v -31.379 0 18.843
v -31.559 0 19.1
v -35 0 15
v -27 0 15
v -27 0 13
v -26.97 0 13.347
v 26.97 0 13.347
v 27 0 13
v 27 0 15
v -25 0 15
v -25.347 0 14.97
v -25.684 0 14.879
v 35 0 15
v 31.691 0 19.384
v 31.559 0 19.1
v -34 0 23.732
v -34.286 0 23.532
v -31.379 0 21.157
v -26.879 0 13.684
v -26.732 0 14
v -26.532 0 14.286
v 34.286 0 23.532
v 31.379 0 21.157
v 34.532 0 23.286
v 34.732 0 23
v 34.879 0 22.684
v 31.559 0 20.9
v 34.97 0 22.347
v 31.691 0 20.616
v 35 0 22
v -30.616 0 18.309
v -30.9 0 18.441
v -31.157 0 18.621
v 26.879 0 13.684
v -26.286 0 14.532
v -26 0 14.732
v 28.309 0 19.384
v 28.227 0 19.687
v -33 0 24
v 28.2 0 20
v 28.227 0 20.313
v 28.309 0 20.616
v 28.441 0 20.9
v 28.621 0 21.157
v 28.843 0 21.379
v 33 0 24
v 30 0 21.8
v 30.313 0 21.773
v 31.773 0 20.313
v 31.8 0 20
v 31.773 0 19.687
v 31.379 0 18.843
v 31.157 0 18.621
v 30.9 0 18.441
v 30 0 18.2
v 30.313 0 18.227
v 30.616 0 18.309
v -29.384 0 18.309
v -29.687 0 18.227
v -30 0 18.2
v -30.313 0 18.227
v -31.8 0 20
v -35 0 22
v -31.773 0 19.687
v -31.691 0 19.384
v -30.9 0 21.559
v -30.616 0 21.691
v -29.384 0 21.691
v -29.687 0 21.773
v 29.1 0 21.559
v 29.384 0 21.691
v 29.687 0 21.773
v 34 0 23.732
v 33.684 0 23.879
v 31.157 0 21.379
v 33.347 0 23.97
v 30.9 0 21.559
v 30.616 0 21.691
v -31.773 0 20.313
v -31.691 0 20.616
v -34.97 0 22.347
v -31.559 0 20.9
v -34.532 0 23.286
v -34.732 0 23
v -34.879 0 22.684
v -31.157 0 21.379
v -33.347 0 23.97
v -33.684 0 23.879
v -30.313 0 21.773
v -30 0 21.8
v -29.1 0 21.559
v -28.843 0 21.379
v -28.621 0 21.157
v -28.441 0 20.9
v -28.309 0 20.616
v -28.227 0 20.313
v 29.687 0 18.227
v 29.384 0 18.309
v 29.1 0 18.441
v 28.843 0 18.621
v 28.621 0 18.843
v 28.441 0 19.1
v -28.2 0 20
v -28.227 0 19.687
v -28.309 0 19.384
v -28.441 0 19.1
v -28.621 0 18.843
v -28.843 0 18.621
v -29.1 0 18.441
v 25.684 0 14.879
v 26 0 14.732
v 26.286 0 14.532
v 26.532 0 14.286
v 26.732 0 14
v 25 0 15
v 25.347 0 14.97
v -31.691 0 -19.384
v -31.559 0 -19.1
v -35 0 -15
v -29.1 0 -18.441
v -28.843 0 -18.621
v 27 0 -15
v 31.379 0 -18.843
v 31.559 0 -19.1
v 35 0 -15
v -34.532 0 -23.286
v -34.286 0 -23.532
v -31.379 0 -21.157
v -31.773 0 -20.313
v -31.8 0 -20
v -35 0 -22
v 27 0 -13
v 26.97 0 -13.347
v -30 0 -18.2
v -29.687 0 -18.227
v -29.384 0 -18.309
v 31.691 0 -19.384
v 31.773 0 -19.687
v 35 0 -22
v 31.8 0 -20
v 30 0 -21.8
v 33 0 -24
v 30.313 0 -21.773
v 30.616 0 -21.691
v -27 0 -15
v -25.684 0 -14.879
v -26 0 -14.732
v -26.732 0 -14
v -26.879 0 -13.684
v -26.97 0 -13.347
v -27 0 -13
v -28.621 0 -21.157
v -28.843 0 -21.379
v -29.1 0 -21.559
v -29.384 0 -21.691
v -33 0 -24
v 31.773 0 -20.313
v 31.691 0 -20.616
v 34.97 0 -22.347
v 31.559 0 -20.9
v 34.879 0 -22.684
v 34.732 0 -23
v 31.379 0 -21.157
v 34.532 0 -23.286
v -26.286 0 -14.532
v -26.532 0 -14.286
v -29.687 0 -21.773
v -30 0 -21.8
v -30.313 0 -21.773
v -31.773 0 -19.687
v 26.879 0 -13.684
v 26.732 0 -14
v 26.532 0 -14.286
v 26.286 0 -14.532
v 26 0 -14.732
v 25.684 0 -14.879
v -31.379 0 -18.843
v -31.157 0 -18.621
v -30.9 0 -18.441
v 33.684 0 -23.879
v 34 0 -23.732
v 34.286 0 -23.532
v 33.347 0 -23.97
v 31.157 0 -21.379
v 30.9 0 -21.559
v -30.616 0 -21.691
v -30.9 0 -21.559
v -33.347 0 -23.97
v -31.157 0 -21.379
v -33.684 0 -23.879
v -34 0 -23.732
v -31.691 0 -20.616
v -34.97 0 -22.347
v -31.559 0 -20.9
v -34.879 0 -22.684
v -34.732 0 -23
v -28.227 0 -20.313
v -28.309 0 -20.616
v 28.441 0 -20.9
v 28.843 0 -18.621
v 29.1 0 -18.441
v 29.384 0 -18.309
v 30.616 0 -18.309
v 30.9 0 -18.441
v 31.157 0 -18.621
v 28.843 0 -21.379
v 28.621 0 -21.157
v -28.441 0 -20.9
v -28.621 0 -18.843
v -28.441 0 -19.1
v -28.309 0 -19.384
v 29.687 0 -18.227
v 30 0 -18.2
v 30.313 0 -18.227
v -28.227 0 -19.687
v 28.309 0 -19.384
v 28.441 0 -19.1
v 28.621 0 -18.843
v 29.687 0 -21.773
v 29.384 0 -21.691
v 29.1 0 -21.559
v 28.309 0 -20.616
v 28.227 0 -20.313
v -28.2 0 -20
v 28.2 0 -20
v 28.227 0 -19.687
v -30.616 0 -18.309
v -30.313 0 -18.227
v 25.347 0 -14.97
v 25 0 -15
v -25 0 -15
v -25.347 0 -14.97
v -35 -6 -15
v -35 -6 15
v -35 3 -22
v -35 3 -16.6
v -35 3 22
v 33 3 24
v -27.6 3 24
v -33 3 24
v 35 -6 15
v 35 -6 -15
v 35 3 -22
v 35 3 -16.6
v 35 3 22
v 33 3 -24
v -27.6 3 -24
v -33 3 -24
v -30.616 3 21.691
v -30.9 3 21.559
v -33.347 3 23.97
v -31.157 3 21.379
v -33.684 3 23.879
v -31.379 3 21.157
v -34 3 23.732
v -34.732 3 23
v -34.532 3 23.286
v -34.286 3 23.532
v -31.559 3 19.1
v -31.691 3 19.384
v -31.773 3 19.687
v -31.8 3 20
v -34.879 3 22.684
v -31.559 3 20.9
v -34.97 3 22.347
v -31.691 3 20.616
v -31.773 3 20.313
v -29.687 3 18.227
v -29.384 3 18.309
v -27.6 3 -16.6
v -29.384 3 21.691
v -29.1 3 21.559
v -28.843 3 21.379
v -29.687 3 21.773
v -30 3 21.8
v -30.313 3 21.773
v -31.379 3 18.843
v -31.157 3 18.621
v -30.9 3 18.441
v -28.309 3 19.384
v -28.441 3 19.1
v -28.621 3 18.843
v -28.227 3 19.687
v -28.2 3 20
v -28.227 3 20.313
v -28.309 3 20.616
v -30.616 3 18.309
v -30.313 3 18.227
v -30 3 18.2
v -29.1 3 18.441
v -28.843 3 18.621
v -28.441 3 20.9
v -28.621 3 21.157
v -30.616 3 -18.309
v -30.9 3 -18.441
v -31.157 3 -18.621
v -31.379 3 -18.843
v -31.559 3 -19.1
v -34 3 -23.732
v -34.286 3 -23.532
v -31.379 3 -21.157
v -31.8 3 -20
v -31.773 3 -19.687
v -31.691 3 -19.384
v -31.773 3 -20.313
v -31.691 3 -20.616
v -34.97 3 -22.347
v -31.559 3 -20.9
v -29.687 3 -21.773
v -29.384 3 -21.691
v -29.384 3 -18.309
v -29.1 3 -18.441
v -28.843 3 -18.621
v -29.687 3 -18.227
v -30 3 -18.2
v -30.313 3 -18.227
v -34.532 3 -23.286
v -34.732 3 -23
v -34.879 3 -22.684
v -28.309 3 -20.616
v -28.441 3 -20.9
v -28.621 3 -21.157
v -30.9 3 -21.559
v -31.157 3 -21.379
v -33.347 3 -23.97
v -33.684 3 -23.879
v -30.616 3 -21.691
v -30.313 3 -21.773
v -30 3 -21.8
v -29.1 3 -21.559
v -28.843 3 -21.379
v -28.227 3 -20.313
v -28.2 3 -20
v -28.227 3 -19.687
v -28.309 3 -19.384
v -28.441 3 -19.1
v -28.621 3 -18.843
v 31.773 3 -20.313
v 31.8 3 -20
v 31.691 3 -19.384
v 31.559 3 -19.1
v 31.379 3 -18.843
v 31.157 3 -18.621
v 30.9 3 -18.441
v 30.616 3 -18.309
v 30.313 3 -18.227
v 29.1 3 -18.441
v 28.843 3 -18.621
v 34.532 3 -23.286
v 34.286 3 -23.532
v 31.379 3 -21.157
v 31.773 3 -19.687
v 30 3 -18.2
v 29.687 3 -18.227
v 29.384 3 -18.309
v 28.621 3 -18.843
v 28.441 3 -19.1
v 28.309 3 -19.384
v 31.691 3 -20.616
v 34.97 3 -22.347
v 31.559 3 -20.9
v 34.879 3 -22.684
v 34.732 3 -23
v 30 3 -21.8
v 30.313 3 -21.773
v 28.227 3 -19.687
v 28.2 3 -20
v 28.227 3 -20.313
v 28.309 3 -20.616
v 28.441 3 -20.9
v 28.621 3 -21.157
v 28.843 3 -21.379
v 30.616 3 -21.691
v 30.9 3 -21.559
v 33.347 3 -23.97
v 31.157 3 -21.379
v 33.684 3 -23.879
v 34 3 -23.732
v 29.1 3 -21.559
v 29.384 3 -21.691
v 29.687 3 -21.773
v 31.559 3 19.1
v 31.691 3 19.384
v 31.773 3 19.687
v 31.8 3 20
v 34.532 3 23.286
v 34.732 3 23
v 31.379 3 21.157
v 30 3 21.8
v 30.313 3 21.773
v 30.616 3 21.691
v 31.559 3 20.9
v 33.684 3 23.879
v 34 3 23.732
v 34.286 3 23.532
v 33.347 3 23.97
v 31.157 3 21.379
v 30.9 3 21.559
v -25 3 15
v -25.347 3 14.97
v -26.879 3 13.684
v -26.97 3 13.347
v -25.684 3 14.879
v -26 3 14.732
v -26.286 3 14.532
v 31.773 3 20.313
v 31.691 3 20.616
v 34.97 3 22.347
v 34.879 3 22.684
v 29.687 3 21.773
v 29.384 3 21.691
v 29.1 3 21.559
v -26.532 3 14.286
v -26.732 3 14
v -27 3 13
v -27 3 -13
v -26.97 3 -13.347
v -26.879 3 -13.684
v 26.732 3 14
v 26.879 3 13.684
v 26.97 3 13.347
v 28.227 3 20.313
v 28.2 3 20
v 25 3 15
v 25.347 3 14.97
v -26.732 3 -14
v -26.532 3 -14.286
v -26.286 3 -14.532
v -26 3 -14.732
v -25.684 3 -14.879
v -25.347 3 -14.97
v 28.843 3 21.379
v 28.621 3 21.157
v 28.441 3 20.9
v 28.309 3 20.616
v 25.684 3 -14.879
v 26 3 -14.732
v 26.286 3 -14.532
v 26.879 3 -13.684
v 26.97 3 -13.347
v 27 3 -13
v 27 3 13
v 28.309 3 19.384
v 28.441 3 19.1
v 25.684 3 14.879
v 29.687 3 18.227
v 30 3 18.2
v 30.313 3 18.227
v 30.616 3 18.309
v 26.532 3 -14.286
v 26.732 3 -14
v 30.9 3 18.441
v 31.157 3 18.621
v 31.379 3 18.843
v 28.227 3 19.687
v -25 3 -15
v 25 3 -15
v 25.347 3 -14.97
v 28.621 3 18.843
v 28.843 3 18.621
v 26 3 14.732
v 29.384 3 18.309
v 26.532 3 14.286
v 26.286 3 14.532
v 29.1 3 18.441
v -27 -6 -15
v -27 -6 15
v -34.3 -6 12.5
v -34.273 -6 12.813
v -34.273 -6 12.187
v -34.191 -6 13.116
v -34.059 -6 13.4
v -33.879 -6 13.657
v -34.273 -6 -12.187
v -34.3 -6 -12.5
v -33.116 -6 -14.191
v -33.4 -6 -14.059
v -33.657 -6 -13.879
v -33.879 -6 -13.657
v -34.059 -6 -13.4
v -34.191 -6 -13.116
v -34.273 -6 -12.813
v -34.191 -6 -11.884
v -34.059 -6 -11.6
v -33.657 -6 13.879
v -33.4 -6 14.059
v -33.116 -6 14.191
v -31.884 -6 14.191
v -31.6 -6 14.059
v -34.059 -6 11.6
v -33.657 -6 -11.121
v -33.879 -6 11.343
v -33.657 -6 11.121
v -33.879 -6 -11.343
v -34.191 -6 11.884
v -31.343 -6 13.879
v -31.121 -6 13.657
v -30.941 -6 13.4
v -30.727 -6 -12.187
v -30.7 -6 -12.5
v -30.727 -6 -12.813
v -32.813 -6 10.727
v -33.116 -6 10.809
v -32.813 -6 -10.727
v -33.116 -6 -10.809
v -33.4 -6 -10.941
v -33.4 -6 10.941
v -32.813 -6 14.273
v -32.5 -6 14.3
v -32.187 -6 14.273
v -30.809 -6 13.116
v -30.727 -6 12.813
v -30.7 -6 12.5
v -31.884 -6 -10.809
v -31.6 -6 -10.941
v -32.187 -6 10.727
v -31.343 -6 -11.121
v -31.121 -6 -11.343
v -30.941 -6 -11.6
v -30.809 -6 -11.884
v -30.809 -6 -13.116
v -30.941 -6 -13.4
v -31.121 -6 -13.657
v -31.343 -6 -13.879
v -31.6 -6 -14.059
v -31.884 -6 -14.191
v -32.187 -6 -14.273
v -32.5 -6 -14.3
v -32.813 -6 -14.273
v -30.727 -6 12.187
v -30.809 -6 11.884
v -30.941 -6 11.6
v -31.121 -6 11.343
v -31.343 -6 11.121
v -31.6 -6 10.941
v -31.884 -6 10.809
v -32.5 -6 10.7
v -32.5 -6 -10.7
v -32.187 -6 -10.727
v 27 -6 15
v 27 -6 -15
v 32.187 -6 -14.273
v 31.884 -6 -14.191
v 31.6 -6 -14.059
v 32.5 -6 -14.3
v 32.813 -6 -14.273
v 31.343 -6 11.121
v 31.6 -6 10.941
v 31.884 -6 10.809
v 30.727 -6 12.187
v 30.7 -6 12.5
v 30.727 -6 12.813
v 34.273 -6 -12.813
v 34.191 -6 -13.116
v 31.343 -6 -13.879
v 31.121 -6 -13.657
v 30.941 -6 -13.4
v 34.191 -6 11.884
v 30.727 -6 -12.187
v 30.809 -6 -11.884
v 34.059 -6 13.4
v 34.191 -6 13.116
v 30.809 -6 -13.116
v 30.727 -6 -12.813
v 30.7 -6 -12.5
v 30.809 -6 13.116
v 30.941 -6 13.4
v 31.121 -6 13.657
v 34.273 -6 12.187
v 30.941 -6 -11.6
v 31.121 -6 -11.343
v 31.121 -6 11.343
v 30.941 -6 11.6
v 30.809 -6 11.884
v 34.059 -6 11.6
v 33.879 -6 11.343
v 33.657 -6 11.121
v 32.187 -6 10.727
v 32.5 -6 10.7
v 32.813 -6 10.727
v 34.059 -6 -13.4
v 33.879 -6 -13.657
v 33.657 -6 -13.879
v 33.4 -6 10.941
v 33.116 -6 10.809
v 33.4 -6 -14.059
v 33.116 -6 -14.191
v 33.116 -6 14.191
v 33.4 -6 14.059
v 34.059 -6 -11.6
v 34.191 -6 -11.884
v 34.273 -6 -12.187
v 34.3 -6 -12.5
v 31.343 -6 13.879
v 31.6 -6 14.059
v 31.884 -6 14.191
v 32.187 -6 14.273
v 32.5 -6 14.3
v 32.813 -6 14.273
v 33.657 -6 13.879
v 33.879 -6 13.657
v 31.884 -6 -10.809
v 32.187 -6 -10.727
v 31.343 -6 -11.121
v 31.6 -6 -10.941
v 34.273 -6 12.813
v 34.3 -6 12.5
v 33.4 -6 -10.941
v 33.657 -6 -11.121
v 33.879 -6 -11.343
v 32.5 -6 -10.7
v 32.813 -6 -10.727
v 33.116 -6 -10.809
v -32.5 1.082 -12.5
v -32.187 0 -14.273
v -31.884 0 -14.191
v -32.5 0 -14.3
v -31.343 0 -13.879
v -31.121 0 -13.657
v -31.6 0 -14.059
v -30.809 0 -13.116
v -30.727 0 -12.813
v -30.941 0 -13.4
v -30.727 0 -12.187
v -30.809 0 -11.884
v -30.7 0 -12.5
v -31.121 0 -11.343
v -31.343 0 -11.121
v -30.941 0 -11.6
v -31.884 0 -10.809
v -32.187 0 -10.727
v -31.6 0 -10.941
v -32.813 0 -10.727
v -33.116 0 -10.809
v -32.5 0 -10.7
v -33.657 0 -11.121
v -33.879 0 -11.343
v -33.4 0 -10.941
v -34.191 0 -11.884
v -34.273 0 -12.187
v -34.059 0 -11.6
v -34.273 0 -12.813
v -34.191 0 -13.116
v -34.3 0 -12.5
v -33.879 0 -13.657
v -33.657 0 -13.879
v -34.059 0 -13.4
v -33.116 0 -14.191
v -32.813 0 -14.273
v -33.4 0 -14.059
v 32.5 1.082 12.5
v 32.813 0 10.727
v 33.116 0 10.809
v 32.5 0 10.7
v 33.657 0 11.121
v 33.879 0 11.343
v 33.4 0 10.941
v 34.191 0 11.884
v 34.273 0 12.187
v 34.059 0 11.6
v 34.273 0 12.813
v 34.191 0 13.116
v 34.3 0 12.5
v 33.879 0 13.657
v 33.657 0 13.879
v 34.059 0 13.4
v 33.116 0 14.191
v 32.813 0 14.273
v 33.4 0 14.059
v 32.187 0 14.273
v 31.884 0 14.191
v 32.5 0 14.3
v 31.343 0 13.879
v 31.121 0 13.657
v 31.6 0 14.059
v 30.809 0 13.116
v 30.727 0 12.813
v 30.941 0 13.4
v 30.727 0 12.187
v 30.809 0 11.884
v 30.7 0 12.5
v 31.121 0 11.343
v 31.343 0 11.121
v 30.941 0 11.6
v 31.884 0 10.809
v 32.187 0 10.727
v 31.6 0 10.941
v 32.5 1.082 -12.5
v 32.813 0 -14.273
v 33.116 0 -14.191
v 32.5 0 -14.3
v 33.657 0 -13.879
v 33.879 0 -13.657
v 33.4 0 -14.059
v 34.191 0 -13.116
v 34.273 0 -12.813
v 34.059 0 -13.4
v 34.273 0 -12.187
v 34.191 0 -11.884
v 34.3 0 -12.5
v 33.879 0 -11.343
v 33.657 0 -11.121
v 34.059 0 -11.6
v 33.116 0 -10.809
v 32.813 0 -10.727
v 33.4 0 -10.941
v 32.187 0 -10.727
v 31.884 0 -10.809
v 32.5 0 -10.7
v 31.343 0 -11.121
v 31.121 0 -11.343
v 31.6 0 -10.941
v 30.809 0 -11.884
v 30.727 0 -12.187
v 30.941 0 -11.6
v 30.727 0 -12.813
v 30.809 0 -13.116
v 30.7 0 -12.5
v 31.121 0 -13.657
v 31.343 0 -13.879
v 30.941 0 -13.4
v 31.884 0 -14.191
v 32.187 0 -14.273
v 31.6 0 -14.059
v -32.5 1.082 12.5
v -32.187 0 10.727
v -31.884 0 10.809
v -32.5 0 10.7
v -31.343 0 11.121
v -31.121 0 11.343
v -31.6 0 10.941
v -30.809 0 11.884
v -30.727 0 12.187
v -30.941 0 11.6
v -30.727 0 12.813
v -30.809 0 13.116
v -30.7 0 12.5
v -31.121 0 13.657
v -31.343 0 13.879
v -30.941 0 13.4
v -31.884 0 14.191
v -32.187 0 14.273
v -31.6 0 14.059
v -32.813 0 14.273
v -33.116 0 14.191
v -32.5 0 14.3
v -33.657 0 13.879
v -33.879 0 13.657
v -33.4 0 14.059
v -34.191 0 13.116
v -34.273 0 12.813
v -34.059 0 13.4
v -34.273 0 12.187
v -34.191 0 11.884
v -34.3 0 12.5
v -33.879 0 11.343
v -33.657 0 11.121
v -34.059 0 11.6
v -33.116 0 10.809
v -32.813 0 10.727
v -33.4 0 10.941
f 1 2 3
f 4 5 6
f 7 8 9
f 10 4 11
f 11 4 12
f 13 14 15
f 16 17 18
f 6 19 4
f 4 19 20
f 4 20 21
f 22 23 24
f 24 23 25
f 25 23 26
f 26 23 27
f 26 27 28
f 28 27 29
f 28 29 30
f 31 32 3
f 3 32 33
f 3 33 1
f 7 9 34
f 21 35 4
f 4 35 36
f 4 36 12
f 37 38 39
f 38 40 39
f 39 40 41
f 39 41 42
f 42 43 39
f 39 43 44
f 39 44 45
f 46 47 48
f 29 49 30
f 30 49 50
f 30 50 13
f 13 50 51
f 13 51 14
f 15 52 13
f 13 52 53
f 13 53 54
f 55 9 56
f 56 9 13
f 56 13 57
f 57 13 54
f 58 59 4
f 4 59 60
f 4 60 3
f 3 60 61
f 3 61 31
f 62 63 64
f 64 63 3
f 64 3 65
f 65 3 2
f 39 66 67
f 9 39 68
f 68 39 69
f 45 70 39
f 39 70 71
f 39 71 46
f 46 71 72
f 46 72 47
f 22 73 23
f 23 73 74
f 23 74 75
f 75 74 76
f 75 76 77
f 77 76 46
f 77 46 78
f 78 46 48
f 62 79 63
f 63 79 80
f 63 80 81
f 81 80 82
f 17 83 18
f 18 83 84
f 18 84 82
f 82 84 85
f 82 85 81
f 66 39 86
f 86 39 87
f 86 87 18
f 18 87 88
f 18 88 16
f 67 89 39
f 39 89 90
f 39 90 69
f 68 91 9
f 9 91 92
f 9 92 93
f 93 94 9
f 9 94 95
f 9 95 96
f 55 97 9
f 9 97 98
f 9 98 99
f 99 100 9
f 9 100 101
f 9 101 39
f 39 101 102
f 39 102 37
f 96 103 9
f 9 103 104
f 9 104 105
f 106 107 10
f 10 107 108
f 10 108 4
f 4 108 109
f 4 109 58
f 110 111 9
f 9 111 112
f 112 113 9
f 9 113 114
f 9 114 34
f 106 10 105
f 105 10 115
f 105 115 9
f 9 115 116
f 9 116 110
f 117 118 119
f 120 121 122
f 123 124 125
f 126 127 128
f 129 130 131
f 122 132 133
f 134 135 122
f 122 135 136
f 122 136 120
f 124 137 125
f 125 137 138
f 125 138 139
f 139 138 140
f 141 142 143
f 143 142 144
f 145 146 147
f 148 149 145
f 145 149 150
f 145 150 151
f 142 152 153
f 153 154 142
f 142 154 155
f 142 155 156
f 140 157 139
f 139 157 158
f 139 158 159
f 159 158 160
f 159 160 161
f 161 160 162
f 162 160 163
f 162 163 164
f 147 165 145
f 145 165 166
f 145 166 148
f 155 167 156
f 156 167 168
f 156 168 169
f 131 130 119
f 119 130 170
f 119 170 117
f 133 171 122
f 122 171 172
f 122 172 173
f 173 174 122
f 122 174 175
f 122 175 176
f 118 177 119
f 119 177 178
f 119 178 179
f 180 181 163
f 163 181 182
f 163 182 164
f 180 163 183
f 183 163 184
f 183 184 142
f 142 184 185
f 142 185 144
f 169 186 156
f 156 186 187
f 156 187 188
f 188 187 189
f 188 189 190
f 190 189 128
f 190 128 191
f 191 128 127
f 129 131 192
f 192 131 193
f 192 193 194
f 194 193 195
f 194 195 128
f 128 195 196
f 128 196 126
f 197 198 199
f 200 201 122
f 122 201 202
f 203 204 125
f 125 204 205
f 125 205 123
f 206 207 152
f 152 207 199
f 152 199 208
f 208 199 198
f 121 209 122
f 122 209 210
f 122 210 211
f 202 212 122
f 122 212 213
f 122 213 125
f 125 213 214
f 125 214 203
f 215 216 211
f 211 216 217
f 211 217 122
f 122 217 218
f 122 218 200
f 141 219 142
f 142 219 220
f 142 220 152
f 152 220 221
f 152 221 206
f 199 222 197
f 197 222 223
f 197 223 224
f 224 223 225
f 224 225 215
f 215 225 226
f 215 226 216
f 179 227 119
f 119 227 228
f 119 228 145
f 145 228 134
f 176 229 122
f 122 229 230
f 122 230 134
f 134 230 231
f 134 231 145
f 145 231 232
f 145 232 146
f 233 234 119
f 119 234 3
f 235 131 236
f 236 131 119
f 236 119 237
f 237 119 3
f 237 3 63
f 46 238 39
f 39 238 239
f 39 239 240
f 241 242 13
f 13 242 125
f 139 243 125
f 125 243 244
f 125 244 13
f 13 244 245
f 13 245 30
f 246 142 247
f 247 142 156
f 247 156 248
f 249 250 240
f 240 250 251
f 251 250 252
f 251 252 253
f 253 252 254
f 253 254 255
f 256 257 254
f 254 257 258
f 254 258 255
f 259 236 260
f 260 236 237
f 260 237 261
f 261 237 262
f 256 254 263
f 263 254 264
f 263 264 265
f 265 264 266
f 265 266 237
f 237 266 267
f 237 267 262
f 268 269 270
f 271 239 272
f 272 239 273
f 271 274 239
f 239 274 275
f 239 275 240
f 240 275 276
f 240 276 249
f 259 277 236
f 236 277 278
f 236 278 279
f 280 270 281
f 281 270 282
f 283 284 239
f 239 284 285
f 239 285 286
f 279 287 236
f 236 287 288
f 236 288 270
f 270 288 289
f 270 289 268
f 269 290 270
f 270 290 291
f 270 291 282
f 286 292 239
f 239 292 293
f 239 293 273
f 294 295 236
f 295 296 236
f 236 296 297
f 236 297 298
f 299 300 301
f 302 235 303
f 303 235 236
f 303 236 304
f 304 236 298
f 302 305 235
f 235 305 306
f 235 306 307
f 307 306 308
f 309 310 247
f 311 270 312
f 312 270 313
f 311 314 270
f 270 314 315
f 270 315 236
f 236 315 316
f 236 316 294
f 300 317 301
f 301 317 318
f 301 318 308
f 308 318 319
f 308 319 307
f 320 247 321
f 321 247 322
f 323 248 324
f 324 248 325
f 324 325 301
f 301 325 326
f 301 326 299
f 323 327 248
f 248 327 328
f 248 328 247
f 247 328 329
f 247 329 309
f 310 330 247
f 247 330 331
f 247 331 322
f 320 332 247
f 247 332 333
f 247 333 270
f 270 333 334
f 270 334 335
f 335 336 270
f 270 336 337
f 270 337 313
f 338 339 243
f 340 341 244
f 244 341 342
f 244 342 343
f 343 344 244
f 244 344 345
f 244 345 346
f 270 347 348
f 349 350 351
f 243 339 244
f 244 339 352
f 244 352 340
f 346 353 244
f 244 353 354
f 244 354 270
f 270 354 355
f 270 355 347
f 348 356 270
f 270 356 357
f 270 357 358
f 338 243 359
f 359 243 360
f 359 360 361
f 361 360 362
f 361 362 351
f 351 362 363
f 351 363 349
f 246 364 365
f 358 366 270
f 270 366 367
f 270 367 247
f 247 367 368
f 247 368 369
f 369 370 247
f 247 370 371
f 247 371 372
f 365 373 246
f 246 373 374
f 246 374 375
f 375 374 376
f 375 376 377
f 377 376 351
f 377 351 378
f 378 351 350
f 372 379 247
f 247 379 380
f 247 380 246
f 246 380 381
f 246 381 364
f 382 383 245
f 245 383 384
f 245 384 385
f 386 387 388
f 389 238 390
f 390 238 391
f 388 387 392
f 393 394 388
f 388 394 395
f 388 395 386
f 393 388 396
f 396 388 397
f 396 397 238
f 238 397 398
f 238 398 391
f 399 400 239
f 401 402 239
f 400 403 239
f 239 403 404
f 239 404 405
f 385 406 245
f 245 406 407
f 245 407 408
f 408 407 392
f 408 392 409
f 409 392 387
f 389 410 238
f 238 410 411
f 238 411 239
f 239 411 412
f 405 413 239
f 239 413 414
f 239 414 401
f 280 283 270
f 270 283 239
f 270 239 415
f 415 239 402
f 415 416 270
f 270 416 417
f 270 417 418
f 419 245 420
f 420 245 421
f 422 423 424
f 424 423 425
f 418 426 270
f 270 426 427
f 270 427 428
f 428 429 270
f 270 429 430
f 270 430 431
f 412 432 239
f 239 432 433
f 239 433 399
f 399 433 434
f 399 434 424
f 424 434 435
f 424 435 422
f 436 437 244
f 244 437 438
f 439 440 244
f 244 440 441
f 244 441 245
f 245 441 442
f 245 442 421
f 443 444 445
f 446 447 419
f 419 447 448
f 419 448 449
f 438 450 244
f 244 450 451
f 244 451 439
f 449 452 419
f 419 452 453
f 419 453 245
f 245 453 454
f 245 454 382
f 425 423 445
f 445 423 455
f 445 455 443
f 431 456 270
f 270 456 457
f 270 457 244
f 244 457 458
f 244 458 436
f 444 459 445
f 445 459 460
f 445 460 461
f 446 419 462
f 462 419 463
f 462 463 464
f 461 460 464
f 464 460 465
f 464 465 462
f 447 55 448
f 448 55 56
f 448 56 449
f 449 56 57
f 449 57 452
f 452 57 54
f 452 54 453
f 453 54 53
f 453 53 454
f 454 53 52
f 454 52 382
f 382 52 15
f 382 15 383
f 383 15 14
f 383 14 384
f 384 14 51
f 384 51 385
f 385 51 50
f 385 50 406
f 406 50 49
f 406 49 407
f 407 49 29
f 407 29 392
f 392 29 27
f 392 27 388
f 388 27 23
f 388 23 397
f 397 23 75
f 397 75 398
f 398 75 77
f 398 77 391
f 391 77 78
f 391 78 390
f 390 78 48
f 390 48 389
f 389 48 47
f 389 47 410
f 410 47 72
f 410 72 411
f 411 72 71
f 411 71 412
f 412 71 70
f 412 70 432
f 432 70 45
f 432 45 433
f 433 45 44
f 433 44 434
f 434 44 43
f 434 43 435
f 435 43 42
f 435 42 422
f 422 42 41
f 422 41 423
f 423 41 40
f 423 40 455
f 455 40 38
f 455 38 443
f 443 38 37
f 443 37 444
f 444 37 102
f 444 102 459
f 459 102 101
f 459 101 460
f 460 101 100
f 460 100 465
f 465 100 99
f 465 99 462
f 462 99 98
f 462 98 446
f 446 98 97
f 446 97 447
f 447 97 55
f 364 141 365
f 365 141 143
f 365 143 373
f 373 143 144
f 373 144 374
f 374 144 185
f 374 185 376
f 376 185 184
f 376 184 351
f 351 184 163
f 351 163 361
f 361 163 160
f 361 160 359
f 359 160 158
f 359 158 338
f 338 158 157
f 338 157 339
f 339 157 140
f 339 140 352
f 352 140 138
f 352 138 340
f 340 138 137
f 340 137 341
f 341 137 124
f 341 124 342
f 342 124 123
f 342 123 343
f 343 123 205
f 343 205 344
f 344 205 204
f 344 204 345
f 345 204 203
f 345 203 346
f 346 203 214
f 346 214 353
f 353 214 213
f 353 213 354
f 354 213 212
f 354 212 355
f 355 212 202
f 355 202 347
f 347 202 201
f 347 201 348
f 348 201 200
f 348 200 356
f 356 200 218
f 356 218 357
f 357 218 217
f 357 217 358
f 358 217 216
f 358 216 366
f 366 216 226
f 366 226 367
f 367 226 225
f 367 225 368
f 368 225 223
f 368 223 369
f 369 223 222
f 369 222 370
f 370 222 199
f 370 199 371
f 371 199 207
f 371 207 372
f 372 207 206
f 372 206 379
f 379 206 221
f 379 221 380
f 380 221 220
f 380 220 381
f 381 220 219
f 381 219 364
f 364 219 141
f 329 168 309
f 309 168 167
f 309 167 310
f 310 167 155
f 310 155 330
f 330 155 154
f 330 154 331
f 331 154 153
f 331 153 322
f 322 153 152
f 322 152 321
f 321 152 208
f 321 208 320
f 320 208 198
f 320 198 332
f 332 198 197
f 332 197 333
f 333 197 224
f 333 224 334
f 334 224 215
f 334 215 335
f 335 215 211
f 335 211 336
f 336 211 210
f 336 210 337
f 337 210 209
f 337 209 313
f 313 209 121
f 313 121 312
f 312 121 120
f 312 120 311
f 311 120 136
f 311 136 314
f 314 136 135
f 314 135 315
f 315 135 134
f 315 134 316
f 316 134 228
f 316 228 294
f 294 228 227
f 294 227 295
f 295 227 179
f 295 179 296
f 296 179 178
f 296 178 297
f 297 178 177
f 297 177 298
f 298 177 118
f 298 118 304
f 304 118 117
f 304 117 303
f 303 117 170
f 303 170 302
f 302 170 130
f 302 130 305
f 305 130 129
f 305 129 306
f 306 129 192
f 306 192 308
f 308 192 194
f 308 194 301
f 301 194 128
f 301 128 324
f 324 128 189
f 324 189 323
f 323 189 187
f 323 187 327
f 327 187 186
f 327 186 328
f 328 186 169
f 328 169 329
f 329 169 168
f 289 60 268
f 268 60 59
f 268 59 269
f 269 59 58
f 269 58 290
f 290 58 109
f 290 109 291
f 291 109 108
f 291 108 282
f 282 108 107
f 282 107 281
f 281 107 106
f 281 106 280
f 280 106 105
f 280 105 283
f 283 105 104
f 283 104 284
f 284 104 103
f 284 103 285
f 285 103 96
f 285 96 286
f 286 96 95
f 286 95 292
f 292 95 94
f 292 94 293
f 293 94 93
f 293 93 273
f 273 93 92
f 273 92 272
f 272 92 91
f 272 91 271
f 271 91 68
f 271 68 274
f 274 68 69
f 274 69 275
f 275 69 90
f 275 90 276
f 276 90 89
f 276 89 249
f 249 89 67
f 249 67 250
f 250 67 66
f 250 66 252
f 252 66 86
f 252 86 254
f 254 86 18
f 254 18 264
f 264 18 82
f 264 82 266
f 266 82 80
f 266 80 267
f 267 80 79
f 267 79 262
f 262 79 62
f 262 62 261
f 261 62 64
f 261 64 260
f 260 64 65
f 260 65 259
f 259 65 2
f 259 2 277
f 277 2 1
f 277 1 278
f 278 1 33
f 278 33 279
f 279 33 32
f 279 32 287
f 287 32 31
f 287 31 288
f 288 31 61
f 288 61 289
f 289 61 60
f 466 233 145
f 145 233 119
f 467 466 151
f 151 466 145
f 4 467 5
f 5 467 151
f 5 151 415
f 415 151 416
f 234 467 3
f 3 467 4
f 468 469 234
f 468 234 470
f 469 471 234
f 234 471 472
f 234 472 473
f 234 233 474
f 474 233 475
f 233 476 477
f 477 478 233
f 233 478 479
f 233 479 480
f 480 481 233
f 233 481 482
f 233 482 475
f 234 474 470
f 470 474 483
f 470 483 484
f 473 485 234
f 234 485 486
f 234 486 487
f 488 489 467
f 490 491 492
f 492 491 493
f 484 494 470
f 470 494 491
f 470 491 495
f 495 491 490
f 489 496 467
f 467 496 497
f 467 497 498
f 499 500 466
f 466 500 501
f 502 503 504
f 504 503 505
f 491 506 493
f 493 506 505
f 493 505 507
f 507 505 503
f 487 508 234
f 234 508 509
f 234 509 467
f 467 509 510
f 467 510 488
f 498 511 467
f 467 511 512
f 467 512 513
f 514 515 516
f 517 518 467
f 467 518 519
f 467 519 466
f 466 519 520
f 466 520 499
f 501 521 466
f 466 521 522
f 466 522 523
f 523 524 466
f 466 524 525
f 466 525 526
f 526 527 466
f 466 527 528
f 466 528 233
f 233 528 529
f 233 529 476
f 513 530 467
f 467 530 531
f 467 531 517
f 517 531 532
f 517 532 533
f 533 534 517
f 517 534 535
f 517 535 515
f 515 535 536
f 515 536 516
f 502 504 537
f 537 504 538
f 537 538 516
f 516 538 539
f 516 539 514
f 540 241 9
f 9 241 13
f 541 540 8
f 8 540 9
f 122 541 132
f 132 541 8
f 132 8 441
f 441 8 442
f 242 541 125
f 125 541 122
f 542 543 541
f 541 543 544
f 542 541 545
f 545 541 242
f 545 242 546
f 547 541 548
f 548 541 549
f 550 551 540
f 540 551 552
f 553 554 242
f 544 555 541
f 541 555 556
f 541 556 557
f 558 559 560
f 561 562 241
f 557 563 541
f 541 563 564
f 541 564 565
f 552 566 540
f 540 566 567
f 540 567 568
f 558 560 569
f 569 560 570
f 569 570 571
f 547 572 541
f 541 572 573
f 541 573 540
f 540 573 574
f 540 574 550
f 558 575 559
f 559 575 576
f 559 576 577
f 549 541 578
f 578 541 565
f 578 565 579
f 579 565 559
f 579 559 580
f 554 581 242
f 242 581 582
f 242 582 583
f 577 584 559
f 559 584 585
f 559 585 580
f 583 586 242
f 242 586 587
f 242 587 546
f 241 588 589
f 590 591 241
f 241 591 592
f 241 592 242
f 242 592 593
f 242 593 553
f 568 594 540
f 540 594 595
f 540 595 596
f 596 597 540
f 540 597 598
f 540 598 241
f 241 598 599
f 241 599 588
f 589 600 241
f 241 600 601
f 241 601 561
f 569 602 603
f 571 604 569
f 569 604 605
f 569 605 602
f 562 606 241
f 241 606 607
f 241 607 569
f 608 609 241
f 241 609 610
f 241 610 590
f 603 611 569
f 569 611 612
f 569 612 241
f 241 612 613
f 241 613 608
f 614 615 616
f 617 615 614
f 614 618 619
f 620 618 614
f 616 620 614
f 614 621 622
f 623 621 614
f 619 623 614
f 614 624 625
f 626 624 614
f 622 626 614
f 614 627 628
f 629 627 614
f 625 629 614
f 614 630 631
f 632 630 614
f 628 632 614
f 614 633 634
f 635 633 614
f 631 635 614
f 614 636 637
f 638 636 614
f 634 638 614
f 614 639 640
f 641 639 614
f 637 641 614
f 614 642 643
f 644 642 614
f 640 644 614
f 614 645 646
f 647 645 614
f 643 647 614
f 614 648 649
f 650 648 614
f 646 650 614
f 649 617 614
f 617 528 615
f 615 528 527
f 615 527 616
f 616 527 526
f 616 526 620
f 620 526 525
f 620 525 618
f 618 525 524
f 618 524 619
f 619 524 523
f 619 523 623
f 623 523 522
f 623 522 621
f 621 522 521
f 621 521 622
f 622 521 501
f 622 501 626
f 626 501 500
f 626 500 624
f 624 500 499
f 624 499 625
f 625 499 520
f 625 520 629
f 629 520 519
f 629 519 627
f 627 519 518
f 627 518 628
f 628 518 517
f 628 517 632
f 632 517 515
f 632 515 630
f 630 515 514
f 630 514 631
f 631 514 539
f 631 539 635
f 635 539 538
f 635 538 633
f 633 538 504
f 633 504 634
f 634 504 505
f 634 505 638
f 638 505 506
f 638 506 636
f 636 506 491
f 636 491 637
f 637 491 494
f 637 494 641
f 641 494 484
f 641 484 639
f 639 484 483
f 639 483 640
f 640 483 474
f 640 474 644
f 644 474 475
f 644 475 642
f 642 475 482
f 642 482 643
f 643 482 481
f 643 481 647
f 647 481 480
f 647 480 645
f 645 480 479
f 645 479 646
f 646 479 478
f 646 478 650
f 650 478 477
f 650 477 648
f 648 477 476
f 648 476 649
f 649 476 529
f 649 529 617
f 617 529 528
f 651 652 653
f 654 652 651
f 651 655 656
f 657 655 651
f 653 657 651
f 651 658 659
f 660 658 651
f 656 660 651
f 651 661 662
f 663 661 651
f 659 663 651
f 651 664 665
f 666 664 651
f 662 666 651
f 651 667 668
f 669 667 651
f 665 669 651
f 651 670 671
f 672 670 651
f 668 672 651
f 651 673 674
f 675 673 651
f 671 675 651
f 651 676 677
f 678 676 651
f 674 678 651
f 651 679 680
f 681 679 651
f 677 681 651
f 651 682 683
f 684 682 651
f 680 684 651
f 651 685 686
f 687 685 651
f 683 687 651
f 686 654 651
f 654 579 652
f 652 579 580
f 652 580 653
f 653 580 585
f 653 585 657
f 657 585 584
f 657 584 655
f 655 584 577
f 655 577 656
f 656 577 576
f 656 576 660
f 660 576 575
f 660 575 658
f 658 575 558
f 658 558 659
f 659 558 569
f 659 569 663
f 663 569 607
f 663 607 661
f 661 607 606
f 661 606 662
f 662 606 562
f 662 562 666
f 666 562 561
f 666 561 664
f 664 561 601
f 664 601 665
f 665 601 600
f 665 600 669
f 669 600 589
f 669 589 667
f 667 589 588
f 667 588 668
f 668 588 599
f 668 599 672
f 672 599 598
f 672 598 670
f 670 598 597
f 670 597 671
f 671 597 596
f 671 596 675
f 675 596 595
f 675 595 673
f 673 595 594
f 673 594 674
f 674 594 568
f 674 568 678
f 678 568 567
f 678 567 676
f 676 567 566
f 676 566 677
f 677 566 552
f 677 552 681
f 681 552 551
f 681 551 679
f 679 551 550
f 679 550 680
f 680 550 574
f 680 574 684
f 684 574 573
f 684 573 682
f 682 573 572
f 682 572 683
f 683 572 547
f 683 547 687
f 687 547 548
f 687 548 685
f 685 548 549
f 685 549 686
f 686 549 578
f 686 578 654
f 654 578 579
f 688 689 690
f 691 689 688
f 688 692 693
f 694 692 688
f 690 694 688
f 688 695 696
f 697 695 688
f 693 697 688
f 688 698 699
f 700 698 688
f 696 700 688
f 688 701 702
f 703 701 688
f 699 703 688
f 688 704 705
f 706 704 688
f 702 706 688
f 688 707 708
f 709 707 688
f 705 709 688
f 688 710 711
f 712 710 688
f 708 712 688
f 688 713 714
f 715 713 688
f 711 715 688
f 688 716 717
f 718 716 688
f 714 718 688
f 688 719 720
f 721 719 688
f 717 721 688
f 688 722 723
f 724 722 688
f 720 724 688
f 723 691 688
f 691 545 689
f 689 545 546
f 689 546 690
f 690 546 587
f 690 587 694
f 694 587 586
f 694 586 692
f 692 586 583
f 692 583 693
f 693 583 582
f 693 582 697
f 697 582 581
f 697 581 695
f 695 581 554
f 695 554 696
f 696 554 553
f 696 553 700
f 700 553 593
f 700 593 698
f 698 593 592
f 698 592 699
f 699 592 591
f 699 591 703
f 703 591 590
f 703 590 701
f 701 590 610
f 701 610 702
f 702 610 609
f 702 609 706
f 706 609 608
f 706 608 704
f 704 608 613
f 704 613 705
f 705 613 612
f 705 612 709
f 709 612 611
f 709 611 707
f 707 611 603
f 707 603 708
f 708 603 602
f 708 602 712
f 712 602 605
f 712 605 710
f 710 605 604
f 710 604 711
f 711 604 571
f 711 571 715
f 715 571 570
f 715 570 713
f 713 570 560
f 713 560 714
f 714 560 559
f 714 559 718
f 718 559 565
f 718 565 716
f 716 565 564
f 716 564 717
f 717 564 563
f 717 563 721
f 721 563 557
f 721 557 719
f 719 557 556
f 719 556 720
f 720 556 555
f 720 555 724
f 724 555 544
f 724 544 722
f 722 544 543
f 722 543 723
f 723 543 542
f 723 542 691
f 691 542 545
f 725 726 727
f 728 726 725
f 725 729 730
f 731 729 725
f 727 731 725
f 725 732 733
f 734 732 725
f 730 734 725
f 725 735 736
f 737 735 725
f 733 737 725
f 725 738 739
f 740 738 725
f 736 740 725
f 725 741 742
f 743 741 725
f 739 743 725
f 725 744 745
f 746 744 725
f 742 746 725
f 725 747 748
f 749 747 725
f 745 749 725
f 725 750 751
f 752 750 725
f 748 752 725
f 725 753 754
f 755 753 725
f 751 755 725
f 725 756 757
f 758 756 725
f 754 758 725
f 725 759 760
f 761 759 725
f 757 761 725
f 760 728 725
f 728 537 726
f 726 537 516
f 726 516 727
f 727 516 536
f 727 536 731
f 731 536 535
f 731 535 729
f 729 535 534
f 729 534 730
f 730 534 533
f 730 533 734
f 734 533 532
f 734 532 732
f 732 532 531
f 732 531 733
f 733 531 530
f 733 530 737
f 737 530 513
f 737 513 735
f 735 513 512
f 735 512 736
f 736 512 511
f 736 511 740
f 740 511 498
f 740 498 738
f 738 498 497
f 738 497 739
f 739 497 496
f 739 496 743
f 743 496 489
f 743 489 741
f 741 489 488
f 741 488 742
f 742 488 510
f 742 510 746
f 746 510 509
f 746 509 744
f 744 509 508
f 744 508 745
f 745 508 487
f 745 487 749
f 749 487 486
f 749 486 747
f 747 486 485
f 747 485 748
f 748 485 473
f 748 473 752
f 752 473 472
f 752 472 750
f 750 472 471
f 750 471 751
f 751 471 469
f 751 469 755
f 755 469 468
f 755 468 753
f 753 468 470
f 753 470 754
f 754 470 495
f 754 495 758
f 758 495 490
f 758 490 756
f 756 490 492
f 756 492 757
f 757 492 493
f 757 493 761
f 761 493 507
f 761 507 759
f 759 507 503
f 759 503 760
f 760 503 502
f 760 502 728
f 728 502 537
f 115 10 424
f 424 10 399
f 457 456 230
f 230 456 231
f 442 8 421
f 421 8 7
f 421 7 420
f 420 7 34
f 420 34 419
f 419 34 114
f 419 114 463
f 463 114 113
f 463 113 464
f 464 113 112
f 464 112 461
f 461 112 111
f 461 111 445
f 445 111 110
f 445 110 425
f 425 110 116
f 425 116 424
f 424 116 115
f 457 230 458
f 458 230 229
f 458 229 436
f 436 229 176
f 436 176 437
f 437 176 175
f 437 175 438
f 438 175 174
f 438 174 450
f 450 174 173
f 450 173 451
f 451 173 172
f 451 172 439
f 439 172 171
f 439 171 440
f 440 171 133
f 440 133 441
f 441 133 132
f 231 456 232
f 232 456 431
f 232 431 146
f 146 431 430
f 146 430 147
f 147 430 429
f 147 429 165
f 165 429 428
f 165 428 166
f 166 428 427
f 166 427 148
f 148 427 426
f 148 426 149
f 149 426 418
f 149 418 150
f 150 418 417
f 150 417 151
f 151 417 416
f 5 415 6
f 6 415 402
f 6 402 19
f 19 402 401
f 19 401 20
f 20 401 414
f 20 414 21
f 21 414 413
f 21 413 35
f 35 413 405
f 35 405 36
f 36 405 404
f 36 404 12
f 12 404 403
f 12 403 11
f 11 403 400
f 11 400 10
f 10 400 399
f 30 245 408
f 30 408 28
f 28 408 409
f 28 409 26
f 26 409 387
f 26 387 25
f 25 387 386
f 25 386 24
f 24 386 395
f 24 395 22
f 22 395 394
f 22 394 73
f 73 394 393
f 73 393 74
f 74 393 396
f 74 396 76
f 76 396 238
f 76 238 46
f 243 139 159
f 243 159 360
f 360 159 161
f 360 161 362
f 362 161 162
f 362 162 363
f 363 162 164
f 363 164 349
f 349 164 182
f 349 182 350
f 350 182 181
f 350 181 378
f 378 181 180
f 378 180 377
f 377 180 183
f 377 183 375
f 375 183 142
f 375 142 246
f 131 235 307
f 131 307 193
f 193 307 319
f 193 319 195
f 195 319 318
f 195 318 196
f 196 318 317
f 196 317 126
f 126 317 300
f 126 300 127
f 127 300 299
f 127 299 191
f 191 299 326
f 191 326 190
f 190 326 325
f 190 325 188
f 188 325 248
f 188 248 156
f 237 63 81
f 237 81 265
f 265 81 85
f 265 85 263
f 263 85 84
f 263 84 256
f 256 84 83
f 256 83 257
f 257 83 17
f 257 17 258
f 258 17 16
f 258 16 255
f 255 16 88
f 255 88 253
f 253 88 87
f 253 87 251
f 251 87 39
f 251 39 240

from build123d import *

# Parameters (mm, degrees)
SKETCH1_W                = 70
SKETCH1_H                = 48
SKETCH1_W_2              = 60
SKETCH1_H_2              = 40
BOSS_EXTRUDE1_DEPTH      = 3
M3_CLEARANCE_HOLE1_D     = 3.6
M3_CLEARANCE_HOLE1_DEPTH = 9
M3_CLEARANCE_HOLE1_TIP   = 1.081549114
SKETCH6_W                = 8
SKETCH6_H                = 30
BOSS_EXTRUDE2_DEPTH      = 6
SKETCH7_W                = 54
SKETCH7_H                = 30
CUT_EXTRUDE1_DEPTH       = 43.860237983
FILLET1_R                = 2


# Read off the part's stored shape, not the designer's step: Ø1.0mm Dowel Hole1
with BuildPart() as part:
    # Sketch1 → Boss-Extrude1 (new body)
    # profile 1 of 2: a face of its own
    with BuildSketch(Plane(origin=(0, 0, 0), x_dir=(1, 0, 0), z_dir=(0, 1, 0))):
        Rectangle(SKETCH1_W, SKETCH1_H)
        Rectangle(SKETCH1_W_2, SKETCH1_H_2, mode=Mode.SUBTRACT)
    # profile 2 of 2: a face of its own
    with BuildSketch(Plane(origin=(0, 0, 0), x_dir=(1, 0, 0), z_dir=(0, 1, 0))):
        Rectangle(SKETCH1_W_2, SKETCH1_H_2)
    extrude(amount=BOSS_EXTRUDE1_DEPTH)

    # M3 Clearance Hole1
    with Locations(Plane(origin=(0, 0, 0), x_dir=(-1, 0, 0), z_dir=(0, -1, 0))):
        with Locations((30, -20), (30, 20), (-30, 20), (-30, -20)):
            Hole(M3_CLEARANCE_HOLE1_D / 2, depth=M3_CLEARANCE_HOLE1_DEPTH)
            with Locations((0, 0, -(M3_CLEARANCE_HOLE1_DEPTH + M3_CLEARANCE_HOLE1_TIP / 2))):  # 118° drill point
                Cone(0, M3_CLEARANCE_HOLE1_D / 2, M3_CLEARANCE_HOLE1_TIP, mode=Mode.SUBTRACT)

    # Sketch6 → Boss-Extrude2 (add)
    with BuildSketch(Plane.XZ):
        with Locations((-31, 0)):
            Rectangle(SKETCH6_W, SKETCH6_H)
        with Locations((31, 0)):
            Rectangle(SKETCH6_W, SKETCH6_H)
    extrude(amount=BOSS_EXTRUDE2_DEPTH)

    # Ø1.0mm Dowel Hole1 outline → Ø1.0mm Dowel Hole1 (revolve, cut)
    with BuildSketch(Plane(origin=(-32.5, 0, -12.5), x_dir=(1, 0, 0), z_dir=(0, 0, 1))):
        Polygon((1.8, 0), (0, 1.081549114), (0, -6), (1.8, -6), align=None)
    revolve(axis=Axis((-32.5, 0, -12.5), (0, 1, 0)), mode=Mode.SUBTRACT)

    # 1.0mm Dowel Hole1 2 outline → 1.0mm Dowel Hole1 2 (revolve, cut)
    with BuildSketch(Plane(origin=(32.5, 0, 12.5), x_dir=(1, 0, 0), z_dir=(0, 0, 1))):
        Polygon((1.8, 0), (0, 1.081549114), (0, -6), (1.8, -6), align=None)
    revolve(axis=Axis((32.5, 0, 12.5), (0, 1, 0)), mode=Mode.SUBTRACT)

    # 1.0mm Dowel Hole1 3 outline → 1.0mm Dowel Hole1 3 (revolve, cut)
    with BuildSketch(Plane(origin=(32.5, 0, -12.5), x_dir=(1, 0, 0), z_dir=(0, 0, 1))):
        Polygon((1.8, 0), (0, 1.081549114), (0, -6), (1.8, -6), align=None)
    revolve(axis=Axis((32.5, 0, -12.5), (0, 1, 0)), mode=Mode.SUBTRACT)

    # 1.0mm Dowel Hole1 4 outline → 1.0mm Dowel Hole1 4 (revolve, cut)
    with BuildSketch(Plane(origin=(-32.5, 0, 12.5), x_dir=(1, 0, 0), z_dir=(0, 0, 1))):
        Polygon((1.8, 0), (0, 1.081549114), (0, -6), (1.8, -6), align=None)
    revolve(axis=Axis((-32.5, 0, 12.5), (0, 1, 0)), mode=Mode.SUBTRACT)

    # 1.0mm Dowel Hole1 5 outline → 1.0mm Dowel Hole1 5 (revolve, cut)
    with BuildSketch(Plane.XY):
        Polygon((1.8, 0), (0, 1.081549114), (0, 0), align=None)
    revolve(axis=Axis((0, 0, 0), (0, 1, 0)), mode=Mode.SUBTRACT)

    # Sketch7 → Cut-Extrude1 (cut, through all)
    with BuildSketch(Plane.XZ):
        Rectangle(SKETCH7_W, SKETCH7_H)
    extrude(amount=-CUT_EXTRUDE1_DEPTH, mode=Mode.SUBTRACT)

    # Fillet1
    fillet1_edges = [part.edges().sort_by_distance(p)[0] for p in [
        (-27, 1.5, -15),
        (-27, 1.5, 15),
        (27, 1.5, 15),
        (27, 1.5, -15),
        (-35, 1.5, -24),
        (35, 1.5, -24),
        (35, 1.5, 24),
        (-35, 1.5, 24),
    ]]
    fillet(fillet1_edges, radius=FILLET1_R)


solid = part.part
